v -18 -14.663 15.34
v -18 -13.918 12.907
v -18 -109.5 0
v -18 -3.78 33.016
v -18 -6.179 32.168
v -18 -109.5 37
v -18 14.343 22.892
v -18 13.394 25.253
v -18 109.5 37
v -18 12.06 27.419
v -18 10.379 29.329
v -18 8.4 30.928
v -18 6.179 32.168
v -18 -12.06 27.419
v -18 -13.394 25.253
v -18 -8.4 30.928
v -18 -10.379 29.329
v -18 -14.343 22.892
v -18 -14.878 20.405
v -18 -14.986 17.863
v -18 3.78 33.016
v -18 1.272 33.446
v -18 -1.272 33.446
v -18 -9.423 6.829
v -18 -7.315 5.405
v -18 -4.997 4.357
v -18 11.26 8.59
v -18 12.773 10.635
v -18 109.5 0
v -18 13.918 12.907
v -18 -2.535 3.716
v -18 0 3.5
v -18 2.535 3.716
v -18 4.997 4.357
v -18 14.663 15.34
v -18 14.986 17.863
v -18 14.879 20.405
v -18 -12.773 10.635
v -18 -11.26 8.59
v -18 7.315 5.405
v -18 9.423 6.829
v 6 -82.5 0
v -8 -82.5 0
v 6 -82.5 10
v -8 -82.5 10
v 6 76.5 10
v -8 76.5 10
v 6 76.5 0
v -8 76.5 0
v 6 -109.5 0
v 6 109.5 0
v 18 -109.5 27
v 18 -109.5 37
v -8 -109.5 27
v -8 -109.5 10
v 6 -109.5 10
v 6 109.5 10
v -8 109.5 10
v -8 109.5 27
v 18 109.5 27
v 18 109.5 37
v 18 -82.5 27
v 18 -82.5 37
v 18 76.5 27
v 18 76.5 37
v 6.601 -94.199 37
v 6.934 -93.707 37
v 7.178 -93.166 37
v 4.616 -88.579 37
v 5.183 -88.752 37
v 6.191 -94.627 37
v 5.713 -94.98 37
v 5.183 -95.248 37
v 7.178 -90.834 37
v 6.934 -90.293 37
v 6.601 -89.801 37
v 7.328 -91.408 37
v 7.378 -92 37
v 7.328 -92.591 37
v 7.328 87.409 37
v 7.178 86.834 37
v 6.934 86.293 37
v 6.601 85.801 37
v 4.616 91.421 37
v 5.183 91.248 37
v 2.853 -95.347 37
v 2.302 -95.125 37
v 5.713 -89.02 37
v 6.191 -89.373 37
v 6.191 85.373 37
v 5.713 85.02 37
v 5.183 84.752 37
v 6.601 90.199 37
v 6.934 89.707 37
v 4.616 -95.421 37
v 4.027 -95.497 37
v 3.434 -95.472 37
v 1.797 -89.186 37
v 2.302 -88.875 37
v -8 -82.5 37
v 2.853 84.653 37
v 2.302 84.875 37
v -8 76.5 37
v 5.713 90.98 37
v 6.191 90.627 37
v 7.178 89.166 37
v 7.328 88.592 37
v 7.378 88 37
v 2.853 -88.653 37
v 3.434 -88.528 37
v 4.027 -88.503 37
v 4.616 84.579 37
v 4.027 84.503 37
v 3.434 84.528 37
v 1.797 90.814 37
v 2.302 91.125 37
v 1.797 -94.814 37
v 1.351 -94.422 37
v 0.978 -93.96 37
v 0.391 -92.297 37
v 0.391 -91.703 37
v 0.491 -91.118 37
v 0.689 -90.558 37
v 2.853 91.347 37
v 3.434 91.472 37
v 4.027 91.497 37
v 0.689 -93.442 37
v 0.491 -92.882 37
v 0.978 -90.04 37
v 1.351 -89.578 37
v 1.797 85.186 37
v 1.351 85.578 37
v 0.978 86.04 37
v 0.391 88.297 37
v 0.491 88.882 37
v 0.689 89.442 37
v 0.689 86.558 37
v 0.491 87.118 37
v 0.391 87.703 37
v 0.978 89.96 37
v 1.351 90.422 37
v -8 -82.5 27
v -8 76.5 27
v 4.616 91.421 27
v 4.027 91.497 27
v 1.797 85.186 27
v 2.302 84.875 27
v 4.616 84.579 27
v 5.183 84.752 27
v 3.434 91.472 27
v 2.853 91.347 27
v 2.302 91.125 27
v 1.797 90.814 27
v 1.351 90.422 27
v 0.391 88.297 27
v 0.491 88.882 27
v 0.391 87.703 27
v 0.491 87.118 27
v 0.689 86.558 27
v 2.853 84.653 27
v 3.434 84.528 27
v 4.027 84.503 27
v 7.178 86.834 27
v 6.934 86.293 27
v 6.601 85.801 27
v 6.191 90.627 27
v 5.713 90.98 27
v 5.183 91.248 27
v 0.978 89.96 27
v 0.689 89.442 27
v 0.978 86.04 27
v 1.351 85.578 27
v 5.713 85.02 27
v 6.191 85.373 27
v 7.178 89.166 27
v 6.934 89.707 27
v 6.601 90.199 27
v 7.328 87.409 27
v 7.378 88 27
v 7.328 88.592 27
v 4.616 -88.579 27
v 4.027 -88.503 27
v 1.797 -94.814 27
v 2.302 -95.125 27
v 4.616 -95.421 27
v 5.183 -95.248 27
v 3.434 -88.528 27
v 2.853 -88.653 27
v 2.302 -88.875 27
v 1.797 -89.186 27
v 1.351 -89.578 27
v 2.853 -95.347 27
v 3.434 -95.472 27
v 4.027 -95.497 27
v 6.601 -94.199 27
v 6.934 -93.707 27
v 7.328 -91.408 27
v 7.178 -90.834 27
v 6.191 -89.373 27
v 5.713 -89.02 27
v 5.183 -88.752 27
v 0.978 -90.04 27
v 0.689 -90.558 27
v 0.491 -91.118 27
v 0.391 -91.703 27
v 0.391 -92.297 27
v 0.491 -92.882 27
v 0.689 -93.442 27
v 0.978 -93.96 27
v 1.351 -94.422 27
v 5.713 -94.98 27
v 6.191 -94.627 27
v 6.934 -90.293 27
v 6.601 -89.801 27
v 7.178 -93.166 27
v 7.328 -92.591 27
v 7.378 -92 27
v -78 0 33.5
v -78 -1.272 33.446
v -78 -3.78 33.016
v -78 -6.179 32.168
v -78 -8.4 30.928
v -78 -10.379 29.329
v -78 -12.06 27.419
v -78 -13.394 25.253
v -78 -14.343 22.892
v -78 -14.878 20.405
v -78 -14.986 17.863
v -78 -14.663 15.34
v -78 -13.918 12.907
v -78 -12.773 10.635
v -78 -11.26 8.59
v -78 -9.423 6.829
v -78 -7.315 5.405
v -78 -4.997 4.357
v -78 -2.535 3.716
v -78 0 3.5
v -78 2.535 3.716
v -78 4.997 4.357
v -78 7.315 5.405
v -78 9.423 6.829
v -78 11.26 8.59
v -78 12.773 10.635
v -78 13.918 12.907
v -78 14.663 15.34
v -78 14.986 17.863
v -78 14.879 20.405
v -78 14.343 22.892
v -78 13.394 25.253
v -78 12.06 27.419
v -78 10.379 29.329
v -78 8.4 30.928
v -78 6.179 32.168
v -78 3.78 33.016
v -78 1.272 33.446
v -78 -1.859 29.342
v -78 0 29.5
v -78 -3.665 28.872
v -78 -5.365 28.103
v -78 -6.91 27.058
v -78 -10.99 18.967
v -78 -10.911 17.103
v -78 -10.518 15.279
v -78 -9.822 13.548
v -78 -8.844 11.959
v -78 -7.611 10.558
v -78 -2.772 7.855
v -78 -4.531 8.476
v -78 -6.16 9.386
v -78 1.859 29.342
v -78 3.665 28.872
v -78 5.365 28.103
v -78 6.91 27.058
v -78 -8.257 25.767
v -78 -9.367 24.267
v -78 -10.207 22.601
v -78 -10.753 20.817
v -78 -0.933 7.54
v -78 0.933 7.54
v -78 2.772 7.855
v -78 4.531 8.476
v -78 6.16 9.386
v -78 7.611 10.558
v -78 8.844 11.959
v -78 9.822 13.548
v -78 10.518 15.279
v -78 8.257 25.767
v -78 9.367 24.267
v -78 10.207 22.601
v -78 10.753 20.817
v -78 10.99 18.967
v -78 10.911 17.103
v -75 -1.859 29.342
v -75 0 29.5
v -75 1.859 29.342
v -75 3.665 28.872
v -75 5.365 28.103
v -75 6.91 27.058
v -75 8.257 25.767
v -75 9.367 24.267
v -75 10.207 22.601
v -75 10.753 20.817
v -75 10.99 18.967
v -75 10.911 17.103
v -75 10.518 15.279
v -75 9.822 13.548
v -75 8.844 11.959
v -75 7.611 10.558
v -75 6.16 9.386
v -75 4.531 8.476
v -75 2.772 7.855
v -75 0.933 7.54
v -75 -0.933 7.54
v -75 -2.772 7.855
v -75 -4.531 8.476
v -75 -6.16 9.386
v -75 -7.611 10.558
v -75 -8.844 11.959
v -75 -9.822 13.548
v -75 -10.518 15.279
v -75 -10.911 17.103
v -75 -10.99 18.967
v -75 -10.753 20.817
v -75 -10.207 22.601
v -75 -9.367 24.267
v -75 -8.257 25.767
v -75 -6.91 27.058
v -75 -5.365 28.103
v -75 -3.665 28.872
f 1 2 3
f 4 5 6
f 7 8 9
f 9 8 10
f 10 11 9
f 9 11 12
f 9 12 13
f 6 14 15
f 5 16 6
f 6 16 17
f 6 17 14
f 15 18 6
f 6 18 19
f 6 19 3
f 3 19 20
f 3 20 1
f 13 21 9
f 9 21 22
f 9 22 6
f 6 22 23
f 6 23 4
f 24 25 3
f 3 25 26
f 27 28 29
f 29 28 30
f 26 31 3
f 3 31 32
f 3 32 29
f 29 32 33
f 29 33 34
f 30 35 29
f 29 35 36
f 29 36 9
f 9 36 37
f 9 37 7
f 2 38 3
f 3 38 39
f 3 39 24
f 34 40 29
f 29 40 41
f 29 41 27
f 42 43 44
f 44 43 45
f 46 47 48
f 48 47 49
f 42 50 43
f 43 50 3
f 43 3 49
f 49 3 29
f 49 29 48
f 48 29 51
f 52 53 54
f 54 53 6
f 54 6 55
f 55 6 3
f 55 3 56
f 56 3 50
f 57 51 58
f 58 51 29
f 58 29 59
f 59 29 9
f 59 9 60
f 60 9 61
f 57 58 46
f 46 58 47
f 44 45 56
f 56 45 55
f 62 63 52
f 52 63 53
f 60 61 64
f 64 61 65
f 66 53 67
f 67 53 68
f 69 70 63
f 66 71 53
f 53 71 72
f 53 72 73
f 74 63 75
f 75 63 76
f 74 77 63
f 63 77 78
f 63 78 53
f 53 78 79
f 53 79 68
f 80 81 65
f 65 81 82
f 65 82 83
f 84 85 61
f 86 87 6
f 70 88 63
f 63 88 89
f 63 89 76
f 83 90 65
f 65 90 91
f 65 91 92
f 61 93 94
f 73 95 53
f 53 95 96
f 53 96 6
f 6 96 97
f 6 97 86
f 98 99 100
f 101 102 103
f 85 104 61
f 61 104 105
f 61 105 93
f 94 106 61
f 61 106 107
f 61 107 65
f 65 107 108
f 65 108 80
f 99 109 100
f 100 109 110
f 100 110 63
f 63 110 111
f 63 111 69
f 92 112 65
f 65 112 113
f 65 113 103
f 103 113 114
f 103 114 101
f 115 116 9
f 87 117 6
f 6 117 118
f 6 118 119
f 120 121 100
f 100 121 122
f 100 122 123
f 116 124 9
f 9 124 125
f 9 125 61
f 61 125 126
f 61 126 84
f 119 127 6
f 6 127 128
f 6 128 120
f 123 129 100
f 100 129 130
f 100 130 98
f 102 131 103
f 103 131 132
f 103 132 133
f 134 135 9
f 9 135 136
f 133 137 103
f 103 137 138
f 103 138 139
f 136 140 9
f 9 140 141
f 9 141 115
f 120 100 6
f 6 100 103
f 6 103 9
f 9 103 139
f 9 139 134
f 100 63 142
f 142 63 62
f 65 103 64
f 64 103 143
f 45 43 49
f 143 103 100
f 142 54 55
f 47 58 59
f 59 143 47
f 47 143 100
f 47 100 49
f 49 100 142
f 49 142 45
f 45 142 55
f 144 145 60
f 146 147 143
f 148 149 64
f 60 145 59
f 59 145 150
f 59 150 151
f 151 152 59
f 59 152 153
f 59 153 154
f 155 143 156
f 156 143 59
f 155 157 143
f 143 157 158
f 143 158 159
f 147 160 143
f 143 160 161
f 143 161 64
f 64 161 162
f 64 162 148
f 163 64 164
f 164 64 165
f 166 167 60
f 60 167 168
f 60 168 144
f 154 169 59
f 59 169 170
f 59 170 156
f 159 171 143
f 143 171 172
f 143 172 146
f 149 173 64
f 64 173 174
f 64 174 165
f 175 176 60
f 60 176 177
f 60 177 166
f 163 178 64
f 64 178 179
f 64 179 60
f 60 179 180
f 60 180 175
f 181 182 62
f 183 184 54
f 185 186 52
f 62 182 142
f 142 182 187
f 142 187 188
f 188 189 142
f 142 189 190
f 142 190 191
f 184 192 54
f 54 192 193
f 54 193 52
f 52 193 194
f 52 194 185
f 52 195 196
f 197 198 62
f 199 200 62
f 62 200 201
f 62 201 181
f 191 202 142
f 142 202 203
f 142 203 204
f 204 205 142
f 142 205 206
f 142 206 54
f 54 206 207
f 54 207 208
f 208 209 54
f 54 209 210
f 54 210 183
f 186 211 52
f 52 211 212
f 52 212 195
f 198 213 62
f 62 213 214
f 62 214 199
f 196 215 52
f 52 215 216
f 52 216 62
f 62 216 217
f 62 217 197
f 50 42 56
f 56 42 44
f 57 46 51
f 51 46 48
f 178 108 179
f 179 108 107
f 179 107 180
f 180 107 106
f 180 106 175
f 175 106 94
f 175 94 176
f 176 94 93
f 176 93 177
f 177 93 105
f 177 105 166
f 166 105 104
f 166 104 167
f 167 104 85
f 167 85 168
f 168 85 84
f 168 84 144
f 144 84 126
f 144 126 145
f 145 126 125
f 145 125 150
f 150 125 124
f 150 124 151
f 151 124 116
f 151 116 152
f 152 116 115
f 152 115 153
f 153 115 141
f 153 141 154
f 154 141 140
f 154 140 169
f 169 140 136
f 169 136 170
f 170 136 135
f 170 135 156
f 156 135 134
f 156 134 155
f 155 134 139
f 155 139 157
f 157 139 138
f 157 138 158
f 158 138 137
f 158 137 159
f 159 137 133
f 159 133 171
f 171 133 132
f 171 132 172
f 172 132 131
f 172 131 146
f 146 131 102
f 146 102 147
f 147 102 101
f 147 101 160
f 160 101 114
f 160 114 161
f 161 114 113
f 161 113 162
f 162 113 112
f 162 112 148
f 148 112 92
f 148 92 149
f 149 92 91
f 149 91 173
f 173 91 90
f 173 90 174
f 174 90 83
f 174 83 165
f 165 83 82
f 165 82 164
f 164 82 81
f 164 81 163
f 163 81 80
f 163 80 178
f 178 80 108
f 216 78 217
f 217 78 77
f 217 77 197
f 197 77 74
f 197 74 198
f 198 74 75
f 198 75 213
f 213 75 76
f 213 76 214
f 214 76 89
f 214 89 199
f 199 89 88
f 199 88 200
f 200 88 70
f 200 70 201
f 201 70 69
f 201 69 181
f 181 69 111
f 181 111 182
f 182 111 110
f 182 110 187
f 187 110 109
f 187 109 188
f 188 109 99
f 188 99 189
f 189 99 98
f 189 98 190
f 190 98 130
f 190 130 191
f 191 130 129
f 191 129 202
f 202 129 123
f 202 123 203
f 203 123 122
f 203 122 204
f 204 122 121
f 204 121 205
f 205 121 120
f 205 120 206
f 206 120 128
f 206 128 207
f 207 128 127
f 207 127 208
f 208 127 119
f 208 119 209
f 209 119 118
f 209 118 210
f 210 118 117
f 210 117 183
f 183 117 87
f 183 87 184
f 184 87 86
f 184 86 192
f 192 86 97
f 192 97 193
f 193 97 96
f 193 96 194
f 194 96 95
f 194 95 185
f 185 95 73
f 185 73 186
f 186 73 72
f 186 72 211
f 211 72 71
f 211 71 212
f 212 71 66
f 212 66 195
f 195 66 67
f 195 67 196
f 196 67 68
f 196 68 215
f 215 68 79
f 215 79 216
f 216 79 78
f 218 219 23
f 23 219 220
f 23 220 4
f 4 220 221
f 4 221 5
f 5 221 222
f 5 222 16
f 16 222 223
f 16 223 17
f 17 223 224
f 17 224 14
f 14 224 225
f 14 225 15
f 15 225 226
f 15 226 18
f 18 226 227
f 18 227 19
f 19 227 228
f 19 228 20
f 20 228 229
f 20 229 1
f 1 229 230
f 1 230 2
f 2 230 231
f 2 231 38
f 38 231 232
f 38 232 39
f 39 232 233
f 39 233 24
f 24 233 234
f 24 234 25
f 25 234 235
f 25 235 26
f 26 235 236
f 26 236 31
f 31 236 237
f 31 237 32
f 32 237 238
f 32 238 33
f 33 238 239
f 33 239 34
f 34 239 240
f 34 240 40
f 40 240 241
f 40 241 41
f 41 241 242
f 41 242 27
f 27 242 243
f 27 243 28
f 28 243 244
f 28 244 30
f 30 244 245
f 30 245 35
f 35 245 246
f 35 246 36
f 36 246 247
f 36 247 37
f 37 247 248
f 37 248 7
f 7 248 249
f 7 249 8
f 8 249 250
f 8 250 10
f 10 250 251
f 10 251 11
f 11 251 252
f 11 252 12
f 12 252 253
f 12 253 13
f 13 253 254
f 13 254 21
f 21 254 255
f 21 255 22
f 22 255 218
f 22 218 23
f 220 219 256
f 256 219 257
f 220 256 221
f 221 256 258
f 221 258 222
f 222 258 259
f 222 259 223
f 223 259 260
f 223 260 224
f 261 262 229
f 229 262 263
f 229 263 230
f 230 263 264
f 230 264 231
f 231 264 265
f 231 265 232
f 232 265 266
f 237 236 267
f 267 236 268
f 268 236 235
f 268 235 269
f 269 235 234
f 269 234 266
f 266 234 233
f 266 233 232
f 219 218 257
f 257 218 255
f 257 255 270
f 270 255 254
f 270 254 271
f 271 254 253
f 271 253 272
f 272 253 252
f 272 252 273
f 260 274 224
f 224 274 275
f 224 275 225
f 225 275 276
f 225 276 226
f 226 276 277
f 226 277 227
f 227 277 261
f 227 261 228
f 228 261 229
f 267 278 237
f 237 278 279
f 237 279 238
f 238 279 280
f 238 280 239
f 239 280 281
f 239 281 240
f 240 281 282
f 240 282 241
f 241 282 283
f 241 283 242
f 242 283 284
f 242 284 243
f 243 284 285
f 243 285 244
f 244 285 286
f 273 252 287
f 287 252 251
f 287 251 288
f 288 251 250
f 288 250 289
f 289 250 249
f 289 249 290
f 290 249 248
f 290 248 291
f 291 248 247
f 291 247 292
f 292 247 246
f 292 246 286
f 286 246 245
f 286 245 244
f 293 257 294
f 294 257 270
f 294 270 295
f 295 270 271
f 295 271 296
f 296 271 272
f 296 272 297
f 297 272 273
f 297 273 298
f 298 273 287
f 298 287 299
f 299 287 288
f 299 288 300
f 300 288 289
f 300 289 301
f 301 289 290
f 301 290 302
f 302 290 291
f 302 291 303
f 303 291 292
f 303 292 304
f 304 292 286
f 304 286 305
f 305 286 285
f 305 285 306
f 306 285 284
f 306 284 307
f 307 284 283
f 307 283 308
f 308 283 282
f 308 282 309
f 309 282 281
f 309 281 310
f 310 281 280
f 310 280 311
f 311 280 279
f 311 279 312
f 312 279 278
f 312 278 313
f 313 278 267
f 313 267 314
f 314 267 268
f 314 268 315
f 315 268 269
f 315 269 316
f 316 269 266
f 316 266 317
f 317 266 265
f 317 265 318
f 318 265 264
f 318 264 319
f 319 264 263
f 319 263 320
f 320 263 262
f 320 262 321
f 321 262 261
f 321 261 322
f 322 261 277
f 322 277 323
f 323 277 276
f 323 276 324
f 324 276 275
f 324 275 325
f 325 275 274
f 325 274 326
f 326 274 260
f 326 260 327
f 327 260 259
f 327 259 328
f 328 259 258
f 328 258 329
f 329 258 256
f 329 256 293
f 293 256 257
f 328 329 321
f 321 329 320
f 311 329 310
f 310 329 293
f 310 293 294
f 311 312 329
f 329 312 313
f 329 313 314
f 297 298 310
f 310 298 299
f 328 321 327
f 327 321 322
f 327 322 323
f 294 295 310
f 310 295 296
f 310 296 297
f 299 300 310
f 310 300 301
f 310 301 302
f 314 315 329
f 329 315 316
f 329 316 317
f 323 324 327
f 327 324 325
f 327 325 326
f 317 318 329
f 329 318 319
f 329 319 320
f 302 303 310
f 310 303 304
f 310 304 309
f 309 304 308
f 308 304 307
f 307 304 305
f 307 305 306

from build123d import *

# Parameters (mm, degrees)
SKETCH_1_W           = 36
SKETCH_1_H           = 219
EXTRUDE_1_DEPTH      = 37
SKETCH_2_W           = 80.767995678
SKETCH_2_H           = 159
CUT_EXTRUDE_1_DEPTH  = 117.975424769
CUT_EXTRUDE_START    = 10
SKETCH_9_W           = 26
SKETCH_9_H           = 219
CUT_EXTRUDE_7_DEPTH  = 17
SKETCH_10_W          = 12
SKETCH_10_H          = 236
CUT_EXTRUDE_8_DEPTH  = 17
CUT_EXTRUDE_START_2  = 37
SKETCH_11_R          = 3.5
CUT_EXTRUDE_11_DEPTH = 17
SKETCH_25_R          = 15
EXTRUDE_3_DEPTH      = 60
CUT_EXTRUDE_START_3  = -78
SKETCH_26_R          = 11
CUT_EXTRUDE_13_DEPTH = 3


with BuildPart() as part:
    # 스케치1 → 보스-돌출1 (new body)
    with BuildSketch(Plane.XY):
        Rectangle(SKETCH_1_W, SKETCH_1_H)
    extrude(amount=EXTRUDE_1_DEPTH)

    # 스케치2 → 컷-돌출1 (cut, through all)
    with BuildSketch(Plane.XY):
        with Locations((32.383997839, -3)):
            Rectangle(SKETCH_2_W, SKETCH_2_H)
    extrude(amount=CUT_EXTRUDE_1_DEPTH, mode=Mode.SUBTRACT)

    # 스케치9 → 컷-돌출7 (cut)
    with BuildSketch(Plane.XY.offset(CUT_EXTRUDE_START)):
        with Locations((5, 0)):
            Rectangle(SKETCH_9_W, SKETCH_9_H)
    extrude(amount=CUT_EXTRUDE_7_DEPTH, mode=Mode.SUBTRACT)

    # 스케치10 → 컷-돌출8 (cut)
    with BuildSketch(Plane.XY):
        with Locations((12, 8.5)):
            Rectangle(SKETCH_10_W, SKETCH_10_H)
    extrude(amount=CUT_EXTRUDE_8_DEPTH, mode=Mode.SUBTRACT)

    # 스케치11 → 컷-돌출11 (cut)
    with BuildSketch(Plane.XY.offset(CUT_EXTRUDE_START_2)):
        with Locations((3.878169626, 88)):
            Circle(SKETCH_11_R)
        with Locations((3.878169626, -92)):
            Circle(SKETCH_11_R)
    extrude(amount=-CUT_EXTRUDE_11_DEPTH, mode=Mode.SUBTRACT)

    # 스케치25 → 보스-돌출3 (add)
    with BuildSketch(Plane.ZY.offset(18)):
        with Locations(Location((18.5, 0, 0), (0, 0, 180))):
            Circle(SKETCH_25_R)
    extrude(amount=EXTRUDE_3_DEPTH)

    # 스케치26 → 컷-돌출13 (cut)
    with BuildSketch(Plane(origin=(0, 0, 0), x_dir=(0, 0, -1), z_dir=(1, 0, 0)).offset(CUT_EXTRUDE_START_3)):
        with Locations(Location((-18.5, 0, 0), (0, 0, 180))):
            Circle(SKETCH_26_R)
    extrude(amount=CUT_EXTRUDE_13_DEPTH, mode=Mode.SUBTRACT)


solid = part.part
